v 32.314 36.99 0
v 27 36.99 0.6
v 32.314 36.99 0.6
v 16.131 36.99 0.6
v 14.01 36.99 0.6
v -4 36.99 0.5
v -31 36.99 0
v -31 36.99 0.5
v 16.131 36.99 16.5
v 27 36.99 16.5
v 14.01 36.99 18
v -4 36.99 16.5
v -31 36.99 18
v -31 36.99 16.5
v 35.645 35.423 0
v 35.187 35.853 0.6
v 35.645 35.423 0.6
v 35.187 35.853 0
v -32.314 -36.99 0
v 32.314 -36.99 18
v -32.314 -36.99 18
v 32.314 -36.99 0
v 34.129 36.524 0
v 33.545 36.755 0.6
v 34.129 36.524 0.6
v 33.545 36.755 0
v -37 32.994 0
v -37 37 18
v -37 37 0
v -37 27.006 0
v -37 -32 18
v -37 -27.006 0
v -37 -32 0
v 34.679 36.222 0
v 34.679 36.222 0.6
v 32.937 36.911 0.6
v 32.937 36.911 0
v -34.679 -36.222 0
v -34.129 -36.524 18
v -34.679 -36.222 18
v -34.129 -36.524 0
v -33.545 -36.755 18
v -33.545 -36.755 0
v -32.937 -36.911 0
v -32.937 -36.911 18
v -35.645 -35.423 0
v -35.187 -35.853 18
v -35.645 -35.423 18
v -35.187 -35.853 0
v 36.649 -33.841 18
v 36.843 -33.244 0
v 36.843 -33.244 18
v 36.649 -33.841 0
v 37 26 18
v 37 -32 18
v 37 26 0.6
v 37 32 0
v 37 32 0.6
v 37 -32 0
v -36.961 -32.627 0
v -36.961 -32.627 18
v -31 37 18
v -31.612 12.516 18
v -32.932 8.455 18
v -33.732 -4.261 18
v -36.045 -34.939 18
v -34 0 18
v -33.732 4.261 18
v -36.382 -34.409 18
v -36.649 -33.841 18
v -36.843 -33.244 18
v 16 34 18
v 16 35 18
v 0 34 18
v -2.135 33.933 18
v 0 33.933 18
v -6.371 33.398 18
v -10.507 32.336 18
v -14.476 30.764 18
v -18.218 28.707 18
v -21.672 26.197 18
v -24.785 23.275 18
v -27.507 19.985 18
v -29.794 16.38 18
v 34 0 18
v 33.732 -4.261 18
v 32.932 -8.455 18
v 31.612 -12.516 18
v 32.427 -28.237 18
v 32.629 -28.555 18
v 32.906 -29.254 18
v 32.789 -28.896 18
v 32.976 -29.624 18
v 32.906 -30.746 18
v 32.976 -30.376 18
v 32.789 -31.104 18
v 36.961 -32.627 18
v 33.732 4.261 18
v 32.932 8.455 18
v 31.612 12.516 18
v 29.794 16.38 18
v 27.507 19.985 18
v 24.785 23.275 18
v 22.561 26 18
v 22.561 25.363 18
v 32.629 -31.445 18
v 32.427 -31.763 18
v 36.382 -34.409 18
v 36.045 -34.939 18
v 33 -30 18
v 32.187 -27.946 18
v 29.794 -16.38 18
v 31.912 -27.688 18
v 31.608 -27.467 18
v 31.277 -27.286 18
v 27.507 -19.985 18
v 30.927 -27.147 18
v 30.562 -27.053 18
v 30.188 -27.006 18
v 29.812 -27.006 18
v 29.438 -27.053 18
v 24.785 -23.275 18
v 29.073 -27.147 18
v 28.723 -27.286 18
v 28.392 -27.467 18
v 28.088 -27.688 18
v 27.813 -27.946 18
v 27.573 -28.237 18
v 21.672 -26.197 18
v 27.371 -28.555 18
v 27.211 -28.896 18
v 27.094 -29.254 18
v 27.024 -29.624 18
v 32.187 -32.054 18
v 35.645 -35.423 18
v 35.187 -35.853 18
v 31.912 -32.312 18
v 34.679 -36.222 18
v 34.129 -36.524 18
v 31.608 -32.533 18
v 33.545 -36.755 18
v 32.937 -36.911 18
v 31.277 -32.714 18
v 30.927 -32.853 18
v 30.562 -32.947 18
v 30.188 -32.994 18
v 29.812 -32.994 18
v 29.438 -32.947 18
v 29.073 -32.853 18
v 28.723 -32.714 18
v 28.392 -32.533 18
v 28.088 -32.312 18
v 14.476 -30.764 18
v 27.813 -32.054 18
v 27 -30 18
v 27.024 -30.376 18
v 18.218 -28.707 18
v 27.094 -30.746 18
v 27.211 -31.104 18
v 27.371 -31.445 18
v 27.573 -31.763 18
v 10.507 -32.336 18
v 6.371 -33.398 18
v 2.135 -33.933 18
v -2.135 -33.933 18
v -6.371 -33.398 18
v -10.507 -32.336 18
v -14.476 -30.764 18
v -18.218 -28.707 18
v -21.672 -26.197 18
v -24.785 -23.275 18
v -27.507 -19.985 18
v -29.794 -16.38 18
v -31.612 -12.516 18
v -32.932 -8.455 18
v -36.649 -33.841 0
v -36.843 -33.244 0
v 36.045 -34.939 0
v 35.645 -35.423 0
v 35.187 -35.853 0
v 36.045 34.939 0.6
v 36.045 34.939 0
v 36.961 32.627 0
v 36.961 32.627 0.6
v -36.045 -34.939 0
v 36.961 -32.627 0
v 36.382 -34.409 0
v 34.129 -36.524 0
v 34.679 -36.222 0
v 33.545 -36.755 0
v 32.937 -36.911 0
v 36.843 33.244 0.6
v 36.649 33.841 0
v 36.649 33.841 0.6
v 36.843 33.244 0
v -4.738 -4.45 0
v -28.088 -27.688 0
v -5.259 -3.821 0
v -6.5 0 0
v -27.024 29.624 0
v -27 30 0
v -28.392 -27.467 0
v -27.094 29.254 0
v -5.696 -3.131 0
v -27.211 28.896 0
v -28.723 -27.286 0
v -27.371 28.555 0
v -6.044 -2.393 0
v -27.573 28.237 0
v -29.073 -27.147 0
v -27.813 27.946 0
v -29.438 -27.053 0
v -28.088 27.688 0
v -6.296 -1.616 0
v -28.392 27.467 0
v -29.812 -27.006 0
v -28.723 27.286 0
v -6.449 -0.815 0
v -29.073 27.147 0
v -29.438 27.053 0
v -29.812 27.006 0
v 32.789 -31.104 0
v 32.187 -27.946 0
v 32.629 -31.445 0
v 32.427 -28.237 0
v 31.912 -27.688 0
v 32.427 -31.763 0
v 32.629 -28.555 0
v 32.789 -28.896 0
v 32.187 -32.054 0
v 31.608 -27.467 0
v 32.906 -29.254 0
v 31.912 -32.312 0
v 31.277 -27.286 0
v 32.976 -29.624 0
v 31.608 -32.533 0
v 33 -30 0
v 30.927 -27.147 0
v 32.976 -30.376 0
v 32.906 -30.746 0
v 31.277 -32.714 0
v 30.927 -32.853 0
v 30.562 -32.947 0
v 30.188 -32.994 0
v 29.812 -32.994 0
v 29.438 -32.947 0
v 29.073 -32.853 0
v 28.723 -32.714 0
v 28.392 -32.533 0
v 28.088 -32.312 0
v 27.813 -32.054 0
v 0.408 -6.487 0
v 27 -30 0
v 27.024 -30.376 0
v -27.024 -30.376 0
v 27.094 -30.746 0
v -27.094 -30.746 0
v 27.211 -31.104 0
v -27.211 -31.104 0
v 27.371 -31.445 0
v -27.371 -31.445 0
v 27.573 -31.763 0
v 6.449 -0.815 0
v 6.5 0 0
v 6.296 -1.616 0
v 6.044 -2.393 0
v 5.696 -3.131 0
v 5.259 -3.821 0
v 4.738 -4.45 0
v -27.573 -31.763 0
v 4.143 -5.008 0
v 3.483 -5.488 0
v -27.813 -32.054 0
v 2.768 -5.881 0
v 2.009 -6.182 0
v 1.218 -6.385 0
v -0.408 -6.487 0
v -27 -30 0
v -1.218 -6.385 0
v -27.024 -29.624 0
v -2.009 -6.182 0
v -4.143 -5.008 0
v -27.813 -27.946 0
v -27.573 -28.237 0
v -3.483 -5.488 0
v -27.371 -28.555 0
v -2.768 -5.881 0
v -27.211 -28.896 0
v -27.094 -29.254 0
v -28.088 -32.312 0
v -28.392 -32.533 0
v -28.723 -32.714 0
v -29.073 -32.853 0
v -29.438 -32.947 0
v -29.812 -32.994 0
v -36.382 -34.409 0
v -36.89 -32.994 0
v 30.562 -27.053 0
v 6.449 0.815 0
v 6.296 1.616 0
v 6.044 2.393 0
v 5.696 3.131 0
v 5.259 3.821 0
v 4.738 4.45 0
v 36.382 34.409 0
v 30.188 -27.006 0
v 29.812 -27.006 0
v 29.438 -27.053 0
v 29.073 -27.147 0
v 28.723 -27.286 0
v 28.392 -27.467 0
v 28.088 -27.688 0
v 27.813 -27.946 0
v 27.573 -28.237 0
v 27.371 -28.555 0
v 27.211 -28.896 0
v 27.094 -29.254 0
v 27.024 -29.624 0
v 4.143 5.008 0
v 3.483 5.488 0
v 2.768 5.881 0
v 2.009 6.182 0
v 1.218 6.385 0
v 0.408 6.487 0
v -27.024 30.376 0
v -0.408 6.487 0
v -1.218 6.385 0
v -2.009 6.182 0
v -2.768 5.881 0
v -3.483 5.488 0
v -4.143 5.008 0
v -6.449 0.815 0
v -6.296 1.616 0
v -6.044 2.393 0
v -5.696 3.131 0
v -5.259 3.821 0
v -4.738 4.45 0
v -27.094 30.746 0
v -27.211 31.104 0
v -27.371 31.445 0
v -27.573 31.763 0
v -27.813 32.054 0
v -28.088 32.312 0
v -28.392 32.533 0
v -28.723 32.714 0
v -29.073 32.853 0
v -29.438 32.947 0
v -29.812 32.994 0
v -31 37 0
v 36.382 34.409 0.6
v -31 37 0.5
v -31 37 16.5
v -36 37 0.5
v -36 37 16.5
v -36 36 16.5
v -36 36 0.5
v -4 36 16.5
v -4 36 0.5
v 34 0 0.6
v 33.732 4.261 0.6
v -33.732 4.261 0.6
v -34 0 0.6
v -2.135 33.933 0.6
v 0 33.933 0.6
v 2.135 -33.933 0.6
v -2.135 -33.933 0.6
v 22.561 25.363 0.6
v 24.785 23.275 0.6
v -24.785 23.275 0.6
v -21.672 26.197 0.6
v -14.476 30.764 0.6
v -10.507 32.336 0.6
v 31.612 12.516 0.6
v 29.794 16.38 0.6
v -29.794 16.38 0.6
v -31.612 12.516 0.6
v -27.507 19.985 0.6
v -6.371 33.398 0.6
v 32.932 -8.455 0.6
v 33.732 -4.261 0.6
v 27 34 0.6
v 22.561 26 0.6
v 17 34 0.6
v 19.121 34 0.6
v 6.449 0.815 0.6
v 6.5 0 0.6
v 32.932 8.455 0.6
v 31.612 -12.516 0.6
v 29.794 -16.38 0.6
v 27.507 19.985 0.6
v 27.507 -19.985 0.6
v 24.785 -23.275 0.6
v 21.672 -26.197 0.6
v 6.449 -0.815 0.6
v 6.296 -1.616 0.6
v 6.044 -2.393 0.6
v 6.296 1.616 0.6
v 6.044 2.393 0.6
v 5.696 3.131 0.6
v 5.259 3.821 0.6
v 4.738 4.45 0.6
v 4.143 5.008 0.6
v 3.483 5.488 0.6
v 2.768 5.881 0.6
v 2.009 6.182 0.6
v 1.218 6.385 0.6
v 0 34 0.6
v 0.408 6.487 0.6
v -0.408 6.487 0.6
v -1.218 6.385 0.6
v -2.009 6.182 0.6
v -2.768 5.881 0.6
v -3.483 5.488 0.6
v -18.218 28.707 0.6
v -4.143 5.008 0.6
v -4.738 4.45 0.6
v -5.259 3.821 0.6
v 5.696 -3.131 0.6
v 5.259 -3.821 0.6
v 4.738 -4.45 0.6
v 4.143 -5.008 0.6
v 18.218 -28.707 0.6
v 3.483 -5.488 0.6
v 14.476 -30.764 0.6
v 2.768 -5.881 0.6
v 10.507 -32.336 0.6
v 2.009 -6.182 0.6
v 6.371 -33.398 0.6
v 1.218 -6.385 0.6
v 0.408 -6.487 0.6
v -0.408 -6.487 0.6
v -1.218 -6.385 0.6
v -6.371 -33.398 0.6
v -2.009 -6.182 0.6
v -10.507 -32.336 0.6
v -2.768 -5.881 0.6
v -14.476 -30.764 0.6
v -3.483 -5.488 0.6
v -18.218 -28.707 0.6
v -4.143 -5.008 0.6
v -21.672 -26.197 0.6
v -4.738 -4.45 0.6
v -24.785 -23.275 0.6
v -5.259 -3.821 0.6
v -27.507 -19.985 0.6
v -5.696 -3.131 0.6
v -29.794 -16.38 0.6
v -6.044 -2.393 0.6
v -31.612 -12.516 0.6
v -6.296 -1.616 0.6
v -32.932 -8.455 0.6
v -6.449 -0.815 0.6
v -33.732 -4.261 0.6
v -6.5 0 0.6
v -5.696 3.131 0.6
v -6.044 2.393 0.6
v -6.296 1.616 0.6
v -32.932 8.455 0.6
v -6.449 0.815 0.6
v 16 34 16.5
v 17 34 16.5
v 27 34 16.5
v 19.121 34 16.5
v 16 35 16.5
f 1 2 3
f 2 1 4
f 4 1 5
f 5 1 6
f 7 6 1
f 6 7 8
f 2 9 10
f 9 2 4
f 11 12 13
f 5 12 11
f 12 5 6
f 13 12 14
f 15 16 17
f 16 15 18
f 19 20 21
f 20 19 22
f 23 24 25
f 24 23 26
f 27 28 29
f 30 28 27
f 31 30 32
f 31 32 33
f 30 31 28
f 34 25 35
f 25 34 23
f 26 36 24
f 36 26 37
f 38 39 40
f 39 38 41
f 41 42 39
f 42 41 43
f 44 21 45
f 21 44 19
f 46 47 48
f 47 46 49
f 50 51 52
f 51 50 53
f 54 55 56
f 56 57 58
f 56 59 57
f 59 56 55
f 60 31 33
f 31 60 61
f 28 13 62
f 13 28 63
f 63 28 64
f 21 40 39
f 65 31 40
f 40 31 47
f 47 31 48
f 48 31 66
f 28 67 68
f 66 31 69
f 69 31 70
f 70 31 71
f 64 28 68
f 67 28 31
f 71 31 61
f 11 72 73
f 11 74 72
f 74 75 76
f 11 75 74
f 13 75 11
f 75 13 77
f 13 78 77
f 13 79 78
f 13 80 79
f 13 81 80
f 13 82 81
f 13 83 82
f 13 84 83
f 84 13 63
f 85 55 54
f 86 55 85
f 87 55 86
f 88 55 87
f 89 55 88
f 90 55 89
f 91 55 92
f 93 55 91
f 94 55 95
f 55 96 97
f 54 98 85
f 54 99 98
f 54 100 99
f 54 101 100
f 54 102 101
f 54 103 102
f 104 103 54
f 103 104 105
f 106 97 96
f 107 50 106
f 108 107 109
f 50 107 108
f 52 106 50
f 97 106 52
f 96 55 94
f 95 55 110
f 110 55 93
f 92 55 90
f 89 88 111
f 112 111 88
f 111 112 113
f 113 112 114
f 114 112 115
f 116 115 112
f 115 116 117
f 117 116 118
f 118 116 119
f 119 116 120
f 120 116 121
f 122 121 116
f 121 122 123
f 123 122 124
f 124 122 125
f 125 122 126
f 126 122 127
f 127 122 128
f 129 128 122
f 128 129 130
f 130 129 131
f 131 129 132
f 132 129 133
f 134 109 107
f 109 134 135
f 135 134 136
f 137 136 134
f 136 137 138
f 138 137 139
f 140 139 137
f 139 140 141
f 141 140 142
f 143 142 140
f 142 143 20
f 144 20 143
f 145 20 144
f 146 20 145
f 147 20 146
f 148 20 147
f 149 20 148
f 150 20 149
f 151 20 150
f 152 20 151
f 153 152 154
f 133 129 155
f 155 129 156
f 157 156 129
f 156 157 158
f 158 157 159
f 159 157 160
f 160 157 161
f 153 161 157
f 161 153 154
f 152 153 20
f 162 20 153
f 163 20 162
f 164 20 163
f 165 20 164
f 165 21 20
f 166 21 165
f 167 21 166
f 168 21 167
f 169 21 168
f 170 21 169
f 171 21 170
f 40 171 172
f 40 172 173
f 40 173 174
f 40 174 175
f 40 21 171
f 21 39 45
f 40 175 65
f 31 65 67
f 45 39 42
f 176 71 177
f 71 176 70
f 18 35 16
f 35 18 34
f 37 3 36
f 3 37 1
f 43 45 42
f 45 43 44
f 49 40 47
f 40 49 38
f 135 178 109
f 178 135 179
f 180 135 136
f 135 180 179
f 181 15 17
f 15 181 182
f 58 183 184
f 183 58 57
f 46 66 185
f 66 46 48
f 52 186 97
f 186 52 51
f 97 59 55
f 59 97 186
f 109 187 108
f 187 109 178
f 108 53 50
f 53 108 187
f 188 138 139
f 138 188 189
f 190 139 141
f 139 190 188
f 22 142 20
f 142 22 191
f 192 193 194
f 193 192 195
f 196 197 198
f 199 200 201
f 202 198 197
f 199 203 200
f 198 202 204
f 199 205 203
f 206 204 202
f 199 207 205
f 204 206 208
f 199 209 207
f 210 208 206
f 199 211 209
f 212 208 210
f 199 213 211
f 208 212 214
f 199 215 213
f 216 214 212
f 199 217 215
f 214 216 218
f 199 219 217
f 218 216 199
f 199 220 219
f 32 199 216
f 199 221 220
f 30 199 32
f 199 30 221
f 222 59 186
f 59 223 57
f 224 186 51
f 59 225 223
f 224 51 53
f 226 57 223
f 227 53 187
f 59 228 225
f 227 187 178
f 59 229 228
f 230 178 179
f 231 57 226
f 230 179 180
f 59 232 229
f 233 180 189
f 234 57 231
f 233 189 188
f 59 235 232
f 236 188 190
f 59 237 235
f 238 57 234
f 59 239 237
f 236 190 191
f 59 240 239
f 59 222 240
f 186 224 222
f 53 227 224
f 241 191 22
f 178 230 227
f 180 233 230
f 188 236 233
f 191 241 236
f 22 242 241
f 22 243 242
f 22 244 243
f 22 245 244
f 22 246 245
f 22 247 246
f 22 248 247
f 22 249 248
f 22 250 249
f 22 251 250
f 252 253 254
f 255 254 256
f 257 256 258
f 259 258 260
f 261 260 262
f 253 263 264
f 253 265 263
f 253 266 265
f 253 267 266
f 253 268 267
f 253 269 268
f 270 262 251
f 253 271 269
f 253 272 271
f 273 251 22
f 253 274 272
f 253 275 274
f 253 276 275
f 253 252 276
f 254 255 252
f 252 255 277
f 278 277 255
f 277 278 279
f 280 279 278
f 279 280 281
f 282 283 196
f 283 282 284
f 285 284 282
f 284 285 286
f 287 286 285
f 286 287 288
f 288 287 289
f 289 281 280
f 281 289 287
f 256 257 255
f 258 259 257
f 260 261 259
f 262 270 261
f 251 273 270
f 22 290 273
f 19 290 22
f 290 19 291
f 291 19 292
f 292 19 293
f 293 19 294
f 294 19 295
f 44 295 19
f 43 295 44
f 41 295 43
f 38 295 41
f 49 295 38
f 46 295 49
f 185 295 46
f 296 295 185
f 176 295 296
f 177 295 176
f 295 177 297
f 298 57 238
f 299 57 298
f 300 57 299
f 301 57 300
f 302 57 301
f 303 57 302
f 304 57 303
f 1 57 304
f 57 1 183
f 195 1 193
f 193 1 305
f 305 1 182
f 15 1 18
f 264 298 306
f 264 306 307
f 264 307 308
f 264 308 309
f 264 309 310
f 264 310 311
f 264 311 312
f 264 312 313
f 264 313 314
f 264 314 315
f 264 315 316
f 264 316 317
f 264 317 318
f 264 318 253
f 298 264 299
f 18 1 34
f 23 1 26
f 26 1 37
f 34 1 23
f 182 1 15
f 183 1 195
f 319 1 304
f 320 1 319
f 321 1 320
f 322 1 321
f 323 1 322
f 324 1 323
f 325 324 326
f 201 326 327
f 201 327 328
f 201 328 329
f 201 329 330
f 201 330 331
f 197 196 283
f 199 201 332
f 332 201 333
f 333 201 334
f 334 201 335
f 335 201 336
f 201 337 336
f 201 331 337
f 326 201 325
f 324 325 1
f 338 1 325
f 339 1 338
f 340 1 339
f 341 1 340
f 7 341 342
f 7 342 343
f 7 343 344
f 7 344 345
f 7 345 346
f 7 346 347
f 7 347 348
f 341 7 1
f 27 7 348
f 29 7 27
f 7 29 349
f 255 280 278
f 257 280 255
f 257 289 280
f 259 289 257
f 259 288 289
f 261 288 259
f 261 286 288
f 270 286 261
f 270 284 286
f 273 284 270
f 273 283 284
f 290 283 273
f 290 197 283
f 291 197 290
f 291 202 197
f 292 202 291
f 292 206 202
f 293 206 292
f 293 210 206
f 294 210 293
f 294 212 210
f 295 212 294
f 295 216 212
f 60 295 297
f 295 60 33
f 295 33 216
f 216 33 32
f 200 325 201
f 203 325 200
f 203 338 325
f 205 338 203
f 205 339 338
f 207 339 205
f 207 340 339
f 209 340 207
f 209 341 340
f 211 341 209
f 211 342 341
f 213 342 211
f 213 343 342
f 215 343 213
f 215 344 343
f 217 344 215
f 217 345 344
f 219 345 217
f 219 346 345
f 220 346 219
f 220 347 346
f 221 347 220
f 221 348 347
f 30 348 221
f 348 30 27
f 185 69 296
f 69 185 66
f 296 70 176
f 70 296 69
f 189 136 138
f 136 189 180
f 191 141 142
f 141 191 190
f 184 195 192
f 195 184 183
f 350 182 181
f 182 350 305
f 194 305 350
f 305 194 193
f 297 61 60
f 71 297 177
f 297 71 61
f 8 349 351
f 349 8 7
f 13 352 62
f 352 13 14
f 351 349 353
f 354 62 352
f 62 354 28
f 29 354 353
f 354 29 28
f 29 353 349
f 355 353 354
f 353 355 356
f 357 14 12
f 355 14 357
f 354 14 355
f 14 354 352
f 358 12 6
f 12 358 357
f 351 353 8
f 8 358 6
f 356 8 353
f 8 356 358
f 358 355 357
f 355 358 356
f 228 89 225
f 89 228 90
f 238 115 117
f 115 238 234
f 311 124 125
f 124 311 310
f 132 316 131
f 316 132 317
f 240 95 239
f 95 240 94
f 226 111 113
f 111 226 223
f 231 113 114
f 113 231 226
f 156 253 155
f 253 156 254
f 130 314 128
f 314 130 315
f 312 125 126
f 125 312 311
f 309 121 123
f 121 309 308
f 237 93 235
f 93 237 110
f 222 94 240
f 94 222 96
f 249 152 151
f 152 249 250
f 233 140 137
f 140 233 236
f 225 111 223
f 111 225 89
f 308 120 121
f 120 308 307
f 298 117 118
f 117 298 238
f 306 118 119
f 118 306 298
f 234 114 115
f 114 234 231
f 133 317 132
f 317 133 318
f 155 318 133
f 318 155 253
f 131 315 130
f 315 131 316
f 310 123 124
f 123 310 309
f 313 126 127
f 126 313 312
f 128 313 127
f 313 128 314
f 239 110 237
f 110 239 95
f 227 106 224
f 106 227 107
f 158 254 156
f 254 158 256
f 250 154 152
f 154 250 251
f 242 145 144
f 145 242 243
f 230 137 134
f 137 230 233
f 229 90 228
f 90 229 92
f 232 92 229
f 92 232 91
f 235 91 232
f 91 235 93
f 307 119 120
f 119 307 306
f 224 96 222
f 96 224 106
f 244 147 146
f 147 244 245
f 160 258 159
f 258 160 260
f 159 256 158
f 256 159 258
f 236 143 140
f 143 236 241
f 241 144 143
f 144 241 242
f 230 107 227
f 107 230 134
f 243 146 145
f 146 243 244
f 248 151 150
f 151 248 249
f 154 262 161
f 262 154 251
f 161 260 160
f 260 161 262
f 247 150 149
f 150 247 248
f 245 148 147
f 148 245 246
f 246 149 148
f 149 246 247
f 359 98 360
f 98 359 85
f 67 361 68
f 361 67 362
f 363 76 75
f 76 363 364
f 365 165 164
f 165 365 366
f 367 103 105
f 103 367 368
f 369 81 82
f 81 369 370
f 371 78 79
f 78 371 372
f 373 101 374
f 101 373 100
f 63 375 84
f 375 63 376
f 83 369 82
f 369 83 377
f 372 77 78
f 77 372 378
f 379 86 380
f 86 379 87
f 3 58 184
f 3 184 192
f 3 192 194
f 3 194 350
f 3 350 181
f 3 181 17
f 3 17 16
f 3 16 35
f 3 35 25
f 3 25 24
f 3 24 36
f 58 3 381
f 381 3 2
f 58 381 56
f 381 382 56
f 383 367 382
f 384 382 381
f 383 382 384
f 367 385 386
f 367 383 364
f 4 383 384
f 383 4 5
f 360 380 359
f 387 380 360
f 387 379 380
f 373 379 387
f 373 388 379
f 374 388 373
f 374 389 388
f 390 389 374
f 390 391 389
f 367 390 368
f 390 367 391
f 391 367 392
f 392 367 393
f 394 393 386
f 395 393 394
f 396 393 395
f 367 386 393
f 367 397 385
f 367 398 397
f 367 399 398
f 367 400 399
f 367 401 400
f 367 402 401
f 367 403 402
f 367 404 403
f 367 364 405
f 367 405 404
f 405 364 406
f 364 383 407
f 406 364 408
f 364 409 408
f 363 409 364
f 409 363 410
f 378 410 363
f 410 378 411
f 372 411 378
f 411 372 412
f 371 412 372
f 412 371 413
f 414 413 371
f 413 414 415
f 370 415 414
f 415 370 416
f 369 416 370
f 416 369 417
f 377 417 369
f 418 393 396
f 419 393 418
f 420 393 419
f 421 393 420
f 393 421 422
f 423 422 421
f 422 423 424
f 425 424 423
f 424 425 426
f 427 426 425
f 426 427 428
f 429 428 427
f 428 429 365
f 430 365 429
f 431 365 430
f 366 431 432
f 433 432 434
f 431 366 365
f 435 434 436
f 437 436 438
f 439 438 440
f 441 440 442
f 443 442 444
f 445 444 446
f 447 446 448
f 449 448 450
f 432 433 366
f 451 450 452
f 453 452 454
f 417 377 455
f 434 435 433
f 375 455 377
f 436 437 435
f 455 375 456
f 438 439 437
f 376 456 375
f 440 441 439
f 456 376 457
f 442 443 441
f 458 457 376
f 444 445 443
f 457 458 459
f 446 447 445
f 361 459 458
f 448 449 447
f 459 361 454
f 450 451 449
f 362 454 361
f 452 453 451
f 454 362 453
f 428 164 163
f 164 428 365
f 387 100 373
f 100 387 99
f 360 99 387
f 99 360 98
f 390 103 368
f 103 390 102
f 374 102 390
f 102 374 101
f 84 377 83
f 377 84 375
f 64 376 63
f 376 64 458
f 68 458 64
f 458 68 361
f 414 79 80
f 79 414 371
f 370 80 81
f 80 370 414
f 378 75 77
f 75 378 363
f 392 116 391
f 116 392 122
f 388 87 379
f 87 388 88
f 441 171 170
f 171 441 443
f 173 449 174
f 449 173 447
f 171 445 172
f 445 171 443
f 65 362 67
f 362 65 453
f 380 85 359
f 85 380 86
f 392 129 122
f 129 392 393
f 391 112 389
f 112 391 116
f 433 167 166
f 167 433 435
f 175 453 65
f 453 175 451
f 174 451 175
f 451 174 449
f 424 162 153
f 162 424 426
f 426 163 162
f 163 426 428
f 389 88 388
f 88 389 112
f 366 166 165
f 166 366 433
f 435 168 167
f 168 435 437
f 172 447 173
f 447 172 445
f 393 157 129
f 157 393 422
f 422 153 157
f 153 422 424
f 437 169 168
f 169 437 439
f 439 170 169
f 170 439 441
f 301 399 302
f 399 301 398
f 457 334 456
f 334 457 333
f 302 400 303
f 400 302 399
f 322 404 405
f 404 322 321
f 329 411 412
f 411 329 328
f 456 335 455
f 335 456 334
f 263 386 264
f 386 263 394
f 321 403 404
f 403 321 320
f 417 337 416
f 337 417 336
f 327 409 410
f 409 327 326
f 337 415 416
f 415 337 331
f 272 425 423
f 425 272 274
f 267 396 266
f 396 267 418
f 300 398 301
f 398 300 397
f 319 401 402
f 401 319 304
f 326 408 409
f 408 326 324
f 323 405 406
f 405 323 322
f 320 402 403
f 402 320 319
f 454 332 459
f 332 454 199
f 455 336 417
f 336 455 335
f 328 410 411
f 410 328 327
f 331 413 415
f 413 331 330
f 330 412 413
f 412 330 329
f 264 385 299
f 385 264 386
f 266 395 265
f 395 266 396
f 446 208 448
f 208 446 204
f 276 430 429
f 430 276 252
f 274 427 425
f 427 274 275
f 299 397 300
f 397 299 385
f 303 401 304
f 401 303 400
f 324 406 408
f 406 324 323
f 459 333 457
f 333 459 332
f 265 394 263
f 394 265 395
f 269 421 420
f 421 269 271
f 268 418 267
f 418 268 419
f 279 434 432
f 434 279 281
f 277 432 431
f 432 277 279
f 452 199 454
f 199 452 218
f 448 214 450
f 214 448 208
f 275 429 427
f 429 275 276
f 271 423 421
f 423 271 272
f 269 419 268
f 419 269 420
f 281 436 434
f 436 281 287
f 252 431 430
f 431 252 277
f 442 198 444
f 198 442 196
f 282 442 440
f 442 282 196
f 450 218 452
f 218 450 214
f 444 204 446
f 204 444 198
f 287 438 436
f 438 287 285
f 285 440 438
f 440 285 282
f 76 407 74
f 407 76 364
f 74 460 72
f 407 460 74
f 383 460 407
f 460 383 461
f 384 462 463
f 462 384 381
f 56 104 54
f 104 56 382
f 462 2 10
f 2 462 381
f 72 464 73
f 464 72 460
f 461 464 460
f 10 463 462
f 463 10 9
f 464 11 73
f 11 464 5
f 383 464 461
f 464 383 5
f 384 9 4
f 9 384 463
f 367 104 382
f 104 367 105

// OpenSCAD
$fn = 50;


difference() {
	union() {
		hull() {
			translate(v = [-32.0000000000, 32.0000000000, 0]) {
				cylinder(h = 18, r = 5);
			}
			translate(v = [32.0000000000, 32.0000000000, 0]) {
				cylinder(h = 18, r = 5);
			}
			translate(v = [-32.0000000000, -32.0000000000, 0]) {
				cylinder(h = 18, r = 5);
			}
			translate(v = [32.0000000000, -32.0000000000, 0]) {
				cylinder(h = 18, r = 5);
			}
		}
		translate(v = [-37.0000000000, 31.0000000000, 0]) {
			cube(size = [6, 6, 18]);
		}
	}
	union() {
		translate(v = [-37.5000000000, -30.0000000000, -250.0000000000]) {
			rotate(a = [0, 0, 0]) {
				difference() {
					union() {
						hull() {
							translate(v = [7.5000000000, 0, 0]) {
								cylinder(h = 250, r = 3.0000000000, r1 = 3.0000000000, r2 = 3.0000000000);
							}
							translate(v = [-7.5000000000, 0, 0]) {
								cylinder(h = 250, r = 3.0000000000, r1 = 3.0000000000, r2 = 3.0000000000);
							}
						}
					}
					union();
				}
			}
		}
		translate(v = [-37.5000000000, 30.0000000000, -250.0000000000]) {
			rotate(a = [0, 0, 0]) {
				difference() {
					union() {
						hull() {
							translate(v = [7.5000000000, 0, 0]) {
								cylinder(h = 250, r = 3.0000000000, r1 = 3.0000000000, r2 = 3.0000000000);
							}
							translate(v = [-7.5000000000, 0, 0]) {
								cylinder(h = 250, r = 3.0000000000, r1 = 3.0000000000, r2 = 3.0000000000);
							}
						}
					}
					union();
				}
			}
		}
		translate(v = [-36.0000000000, 36.0000000000, 0.5000000000]) {
			cube(size = [32, 1, 16]);
		}
		translate(v = [30.0000000000, -30.0000000000, -50.0000000000]) {
			cylinder(h = 100, r = 3.0000000000);
		}
		translate(v = [0, 0, 0.6000000000]) {
			cylinder(h = 20.4000000000, r = 34.0000000000);
		}
		translate(v = [0, 0, -9.0000000000]) {
			cylinder(h = 18, r = 6.5000000000);
		}
		translate(v = [0.0000000000, 26.0000000000, 0.6000000000]) {
			cube(size = [37.0000000000, 8, 20.4000000000]);
		}
		translate(v = [27.0000000000, 26.0000000000, 0.6000000000]) {
			cube(size = [10, 11, 20.4000000000]);
		}
		translate(v = [16.0000000000, 26.0000000000, 16.5000000000]) {
			cube(size = [21, 11, 1.5000000000]);
		}
		translate(v = [13.2500000000, 37.7500000000, 0.6000000000]) {
			rotate(a = [0, 0, -45]) {
				cube(size = [7.5000000000, 1.5000000000, 20.4000000000]);
			}
		}
		translate(v = [15.0610000000, 24.0000000000, 0.6000000000]) {
			cube(size = [7.5000000000, 2, 17.4000000000]);
		}
	}
}
